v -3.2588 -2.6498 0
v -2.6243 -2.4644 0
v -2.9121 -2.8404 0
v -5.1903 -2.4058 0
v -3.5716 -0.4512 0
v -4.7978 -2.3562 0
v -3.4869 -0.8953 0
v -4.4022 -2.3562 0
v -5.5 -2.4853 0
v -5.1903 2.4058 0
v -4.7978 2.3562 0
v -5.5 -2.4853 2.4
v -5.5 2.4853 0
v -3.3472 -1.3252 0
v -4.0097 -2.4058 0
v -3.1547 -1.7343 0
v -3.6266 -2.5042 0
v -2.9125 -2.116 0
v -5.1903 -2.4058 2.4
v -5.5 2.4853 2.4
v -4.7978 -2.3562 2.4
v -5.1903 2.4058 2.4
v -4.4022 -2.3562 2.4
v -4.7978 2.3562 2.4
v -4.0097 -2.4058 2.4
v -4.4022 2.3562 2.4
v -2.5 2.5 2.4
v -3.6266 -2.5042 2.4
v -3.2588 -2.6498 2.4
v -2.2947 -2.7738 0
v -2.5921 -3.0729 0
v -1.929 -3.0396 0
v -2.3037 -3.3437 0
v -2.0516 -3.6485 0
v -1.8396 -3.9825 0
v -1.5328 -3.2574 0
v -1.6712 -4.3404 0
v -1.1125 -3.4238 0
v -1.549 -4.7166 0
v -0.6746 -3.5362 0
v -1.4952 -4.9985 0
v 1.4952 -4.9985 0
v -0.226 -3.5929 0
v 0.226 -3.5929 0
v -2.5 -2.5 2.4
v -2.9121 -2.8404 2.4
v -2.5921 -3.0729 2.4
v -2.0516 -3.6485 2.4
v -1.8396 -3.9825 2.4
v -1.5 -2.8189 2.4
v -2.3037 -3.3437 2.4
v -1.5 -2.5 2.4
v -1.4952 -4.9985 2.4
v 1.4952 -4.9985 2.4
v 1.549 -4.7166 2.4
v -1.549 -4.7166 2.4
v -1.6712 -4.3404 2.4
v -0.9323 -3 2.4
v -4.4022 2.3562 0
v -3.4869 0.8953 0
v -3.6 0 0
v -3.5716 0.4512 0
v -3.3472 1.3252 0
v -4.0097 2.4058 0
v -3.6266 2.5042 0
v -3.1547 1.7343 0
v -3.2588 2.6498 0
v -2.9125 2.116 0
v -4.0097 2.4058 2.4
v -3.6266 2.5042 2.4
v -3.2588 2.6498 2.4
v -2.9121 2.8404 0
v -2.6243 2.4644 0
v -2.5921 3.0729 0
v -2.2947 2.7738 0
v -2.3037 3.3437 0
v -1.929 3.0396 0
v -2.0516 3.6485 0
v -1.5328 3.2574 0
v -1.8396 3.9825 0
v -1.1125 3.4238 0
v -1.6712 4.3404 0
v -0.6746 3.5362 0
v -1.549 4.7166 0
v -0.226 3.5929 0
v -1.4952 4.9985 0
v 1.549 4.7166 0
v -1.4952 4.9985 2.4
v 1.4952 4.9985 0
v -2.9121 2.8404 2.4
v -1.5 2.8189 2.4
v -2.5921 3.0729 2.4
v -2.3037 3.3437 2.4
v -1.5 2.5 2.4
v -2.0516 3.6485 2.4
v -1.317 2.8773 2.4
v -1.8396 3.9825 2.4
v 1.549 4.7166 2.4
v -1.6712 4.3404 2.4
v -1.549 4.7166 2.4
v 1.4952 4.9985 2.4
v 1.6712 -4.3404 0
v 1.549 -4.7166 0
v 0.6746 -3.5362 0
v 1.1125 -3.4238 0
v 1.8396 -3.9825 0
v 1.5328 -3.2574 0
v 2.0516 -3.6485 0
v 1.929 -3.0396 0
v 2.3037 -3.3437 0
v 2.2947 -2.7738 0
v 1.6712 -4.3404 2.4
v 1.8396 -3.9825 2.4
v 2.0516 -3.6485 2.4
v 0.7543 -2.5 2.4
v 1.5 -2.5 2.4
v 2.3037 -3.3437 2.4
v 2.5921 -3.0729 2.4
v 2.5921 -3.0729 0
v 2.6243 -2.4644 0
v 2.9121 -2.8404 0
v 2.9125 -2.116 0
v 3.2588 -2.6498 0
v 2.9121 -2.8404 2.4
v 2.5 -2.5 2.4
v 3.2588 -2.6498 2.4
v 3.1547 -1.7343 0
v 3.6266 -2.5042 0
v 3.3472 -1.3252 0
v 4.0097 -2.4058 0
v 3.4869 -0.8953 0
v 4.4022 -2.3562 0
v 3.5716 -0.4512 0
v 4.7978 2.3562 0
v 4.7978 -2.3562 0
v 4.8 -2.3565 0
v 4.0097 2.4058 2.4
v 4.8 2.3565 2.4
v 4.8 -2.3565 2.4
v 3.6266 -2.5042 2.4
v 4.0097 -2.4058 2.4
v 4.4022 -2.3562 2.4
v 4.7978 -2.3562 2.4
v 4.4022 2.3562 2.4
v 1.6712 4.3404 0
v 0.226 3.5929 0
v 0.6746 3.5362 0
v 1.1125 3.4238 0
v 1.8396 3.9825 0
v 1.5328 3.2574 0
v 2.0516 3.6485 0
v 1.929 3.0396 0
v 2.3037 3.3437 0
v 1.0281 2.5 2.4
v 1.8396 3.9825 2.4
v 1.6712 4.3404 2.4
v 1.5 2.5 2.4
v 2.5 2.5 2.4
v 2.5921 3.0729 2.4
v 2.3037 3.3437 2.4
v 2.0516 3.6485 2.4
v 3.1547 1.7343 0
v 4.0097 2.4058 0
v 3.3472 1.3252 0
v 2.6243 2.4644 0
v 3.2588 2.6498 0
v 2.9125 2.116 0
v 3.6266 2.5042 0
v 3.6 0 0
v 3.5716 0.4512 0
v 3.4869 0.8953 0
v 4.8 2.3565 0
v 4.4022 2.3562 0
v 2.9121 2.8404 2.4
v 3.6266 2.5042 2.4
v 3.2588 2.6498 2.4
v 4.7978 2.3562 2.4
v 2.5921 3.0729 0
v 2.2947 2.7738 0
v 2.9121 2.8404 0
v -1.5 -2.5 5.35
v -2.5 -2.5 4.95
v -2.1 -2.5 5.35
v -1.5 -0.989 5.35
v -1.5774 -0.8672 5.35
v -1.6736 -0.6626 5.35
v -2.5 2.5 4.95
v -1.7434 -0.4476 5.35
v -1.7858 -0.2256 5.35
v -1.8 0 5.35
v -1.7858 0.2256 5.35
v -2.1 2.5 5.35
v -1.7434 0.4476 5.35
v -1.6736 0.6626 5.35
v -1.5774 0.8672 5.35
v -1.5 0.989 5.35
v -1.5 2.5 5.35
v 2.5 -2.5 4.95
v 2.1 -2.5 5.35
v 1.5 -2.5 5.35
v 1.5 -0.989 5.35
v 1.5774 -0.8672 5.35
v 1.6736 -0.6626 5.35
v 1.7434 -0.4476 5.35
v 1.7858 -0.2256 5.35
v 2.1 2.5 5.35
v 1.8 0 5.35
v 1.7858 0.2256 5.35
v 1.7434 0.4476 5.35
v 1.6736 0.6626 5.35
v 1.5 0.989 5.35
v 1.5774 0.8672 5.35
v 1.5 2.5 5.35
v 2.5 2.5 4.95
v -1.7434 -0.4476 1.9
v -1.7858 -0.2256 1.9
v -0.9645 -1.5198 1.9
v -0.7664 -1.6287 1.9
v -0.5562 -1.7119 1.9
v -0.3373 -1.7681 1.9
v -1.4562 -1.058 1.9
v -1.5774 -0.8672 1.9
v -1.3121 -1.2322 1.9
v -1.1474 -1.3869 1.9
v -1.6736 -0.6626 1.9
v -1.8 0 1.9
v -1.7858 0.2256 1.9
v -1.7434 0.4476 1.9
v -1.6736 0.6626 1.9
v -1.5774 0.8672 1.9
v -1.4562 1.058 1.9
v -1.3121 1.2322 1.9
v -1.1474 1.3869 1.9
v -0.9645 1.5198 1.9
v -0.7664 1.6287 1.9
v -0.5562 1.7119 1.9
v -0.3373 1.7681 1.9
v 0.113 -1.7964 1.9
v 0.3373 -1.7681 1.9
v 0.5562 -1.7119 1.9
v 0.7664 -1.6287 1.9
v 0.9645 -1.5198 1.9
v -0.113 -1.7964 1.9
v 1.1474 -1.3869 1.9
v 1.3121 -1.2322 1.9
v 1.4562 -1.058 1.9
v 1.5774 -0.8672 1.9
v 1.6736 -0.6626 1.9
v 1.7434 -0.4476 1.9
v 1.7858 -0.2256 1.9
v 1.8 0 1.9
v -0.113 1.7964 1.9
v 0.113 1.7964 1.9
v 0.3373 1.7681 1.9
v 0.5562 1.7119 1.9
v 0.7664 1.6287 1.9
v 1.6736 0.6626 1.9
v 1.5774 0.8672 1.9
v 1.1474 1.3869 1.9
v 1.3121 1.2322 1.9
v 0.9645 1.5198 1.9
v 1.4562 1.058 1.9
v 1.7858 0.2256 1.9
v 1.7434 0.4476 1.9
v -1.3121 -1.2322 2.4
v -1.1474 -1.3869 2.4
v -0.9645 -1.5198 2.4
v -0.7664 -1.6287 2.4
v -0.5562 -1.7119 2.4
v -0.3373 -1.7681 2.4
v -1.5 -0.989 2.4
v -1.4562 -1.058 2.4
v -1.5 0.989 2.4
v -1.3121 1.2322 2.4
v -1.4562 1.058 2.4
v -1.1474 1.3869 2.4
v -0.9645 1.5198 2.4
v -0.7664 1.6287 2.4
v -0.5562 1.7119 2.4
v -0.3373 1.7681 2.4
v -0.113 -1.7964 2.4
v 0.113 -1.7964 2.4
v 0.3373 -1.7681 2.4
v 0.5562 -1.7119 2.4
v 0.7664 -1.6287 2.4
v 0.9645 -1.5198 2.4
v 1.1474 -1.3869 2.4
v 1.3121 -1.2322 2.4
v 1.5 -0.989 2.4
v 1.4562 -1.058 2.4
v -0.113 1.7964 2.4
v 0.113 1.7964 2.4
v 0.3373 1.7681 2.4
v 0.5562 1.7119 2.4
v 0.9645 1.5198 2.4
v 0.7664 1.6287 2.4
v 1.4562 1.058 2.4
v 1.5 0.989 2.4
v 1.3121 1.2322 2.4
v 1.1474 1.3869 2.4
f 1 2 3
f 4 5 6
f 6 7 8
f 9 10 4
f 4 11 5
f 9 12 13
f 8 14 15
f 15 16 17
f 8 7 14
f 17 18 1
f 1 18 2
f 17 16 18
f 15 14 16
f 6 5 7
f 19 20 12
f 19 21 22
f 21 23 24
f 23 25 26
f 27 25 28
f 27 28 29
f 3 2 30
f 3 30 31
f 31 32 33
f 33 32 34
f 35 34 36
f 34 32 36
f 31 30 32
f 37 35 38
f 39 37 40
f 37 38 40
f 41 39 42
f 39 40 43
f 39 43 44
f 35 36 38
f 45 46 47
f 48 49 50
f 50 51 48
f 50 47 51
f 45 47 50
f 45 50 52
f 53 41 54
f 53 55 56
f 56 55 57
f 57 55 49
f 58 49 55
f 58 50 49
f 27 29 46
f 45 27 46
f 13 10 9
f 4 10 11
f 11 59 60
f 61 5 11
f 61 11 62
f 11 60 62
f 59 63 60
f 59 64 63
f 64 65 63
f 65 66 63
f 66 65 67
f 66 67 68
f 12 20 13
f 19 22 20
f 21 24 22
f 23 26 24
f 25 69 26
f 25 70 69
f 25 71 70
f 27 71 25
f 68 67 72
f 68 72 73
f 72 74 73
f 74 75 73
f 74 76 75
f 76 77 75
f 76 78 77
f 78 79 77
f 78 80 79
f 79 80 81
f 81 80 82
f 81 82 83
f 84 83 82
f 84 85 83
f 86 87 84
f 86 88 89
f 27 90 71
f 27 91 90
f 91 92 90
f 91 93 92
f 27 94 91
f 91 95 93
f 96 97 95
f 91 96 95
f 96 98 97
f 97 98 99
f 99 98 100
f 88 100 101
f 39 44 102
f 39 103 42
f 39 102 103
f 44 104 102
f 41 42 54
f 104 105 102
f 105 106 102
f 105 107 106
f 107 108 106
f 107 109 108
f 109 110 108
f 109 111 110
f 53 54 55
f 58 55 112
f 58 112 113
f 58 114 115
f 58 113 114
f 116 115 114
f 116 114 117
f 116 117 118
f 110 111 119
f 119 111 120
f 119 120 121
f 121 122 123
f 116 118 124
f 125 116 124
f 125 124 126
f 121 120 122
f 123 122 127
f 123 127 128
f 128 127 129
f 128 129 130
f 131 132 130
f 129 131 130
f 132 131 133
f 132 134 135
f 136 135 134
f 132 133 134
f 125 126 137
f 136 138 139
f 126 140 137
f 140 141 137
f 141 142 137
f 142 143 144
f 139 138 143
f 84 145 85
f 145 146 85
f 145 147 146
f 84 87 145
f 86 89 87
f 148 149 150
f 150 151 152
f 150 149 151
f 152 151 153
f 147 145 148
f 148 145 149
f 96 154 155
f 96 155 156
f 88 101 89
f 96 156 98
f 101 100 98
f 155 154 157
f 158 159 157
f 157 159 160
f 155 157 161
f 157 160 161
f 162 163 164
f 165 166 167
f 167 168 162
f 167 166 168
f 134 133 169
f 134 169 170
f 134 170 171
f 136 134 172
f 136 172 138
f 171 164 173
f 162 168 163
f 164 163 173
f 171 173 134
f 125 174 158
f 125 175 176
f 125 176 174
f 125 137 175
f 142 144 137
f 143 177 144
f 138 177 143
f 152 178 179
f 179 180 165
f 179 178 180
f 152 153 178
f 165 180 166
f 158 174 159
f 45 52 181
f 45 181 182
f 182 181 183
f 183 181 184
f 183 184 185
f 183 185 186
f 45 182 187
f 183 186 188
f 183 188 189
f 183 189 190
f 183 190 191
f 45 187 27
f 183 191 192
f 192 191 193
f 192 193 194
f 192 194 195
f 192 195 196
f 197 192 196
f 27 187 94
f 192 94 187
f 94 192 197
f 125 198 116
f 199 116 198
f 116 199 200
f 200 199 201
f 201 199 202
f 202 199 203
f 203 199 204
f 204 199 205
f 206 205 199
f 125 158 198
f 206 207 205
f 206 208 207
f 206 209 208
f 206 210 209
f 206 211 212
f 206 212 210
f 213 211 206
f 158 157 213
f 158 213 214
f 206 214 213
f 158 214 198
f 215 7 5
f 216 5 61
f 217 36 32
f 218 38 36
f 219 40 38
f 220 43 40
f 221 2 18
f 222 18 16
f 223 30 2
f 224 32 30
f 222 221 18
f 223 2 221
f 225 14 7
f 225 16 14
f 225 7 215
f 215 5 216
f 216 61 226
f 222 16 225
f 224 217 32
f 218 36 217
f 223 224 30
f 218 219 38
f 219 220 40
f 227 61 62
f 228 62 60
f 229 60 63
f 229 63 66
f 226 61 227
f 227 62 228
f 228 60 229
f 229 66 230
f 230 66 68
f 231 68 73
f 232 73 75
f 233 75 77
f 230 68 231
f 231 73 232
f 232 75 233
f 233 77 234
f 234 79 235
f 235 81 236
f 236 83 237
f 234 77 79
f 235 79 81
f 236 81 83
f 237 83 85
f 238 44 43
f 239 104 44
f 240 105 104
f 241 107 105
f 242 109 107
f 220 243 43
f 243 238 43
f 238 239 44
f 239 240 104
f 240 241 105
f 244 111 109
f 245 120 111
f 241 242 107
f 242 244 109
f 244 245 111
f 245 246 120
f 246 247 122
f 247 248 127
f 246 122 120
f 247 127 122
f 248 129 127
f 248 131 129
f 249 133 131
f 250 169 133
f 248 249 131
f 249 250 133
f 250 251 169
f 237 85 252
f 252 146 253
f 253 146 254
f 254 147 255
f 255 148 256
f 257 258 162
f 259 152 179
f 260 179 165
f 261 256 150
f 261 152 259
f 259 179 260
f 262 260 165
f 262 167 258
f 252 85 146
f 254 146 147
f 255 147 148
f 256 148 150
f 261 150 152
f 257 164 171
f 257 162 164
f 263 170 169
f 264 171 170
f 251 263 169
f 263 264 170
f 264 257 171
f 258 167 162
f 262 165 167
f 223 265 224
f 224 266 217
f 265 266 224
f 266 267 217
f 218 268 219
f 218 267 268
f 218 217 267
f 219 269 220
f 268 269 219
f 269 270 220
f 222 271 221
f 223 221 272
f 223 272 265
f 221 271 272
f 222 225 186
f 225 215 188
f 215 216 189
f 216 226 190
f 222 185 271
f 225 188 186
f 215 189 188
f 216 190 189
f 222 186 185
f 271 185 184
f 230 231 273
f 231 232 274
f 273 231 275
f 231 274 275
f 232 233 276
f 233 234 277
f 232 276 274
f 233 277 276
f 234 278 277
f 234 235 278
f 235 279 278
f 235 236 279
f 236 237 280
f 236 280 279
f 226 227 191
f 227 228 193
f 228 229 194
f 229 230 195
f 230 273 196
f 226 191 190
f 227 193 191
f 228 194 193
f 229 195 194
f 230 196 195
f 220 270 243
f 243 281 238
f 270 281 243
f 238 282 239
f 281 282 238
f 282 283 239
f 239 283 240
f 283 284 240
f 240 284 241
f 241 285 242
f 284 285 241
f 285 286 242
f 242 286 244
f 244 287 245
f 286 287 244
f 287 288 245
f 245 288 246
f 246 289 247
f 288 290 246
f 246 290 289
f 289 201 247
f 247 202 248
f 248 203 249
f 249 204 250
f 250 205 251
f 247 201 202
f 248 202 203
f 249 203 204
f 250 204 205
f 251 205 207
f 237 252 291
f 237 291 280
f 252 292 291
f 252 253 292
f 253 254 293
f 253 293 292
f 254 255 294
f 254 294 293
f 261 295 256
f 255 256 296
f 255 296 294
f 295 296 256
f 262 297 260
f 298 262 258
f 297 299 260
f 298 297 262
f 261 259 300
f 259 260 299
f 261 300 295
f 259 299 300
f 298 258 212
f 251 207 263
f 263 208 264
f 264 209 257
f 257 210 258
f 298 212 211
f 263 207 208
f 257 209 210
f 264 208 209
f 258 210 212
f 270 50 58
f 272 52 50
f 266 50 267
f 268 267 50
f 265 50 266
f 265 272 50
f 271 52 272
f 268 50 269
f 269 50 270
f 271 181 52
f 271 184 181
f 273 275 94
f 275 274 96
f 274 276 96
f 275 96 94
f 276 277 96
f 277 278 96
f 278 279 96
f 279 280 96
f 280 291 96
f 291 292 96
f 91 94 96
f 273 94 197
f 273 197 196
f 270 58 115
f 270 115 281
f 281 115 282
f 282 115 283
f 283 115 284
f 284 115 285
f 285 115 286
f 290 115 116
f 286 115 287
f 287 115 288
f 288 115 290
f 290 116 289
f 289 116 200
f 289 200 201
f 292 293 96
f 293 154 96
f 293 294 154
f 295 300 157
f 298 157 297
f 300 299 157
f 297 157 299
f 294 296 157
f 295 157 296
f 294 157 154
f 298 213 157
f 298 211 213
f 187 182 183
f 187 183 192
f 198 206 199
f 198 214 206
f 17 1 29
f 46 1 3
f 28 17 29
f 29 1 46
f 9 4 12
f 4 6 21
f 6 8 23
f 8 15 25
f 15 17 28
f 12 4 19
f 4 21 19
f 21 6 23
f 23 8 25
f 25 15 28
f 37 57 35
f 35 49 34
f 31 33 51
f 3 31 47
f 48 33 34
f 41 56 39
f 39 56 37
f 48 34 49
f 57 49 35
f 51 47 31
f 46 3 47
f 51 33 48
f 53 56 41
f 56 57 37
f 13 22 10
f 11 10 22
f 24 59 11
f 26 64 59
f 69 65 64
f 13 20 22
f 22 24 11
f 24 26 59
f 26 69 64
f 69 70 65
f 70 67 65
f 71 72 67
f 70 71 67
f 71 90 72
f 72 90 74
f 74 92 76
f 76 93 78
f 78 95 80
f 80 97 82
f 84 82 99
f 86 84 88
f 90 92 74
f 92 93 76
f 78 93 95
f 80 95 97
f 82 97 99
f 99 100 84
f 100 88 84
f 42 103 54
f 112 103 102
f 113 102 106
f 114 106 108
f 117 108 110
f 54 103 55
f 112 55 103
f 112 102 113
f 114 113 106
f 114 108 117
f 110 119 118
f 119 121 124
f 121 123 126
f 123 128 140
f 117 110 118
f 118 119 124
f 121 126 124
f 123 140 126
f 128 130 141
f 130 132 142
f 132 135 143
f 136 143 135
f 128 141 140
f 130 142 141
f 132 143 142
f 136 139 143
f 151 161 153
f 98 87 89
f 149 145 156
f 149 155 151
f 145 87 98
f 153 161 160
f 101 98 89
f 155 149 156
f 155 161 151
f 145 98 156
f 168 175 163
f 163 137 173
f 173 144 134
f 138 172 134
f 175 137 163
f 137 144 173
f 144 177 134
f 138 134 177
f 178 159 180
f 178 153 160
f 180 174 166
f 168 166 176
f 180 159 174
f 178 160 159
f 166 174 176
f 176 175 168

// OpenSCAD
$fn = 50;

difference() {
	union() {
		translate(v = [0, 0, 0]) {
			rotate(a = [0, 0, 0]) {
				difference() {
					union() {
						translate(v = [0, 0, 0]) {
							rotate(a = [0, 0, 0]) {
								difference() {
									union() {
										translate(v = [-0.35, 0, 0]) {
											hull() {
												translate(v = [-4.4, 4.25, 0]) {
													cylinder(h = 2.4, r = 0.75);
												}
												translate(v = [4.4, 4.25, 0]) {
													cylinder(h = 2.4, r = 0.75);
												}
												translate(v = [-4.4, -4.25, 0]) {
													cylinder(h = 2.4, r = 0.75);
												}
												translate(v = [4.4, -4.25, 0]) {
													cylinder(h = 2.4, r = 0.75);
												}
											}
										}
										translate(v = [-2.5, -2.5, 2.35]) {
											cube(size = [5.0, 5.0, 3.0]);
										}
									}
									union() {
										translate(v = [0, 0, 0]) {
											rotate(a = [0, 180, 0]) {
												difference() {
													union() {
														translate(v = [0, 0, -20.0]) {
															cylinder(h = 20.0, r = 1.5);
														}
														translate(v = [0, 0, -1.9]) {
															cylinder(h = 1.9, r1 = 1.8, r2 = 3.6);
														}
														cylinder(h = 250, r = 3.6);
														translate(v = [0, 0, -20.0]) {
															cylinder(h = 20.0, r = 1.8);
														}
														translate(v = [0, 0, -20.0]) {
															cylinder(h = 20.0, r = 1.5);
														}
													}
													union();
												}
											}
										}
										translate(v = [-1.5, -3.0, 2.4]) {
											cube(size = [3.0, 6.0, 3.0500000000000003]);
										}
										translate(v = [0, 2.6, 0]) {
											rotate(a = [90, 0, 0]) {
												linear_extrude(height = 5.2) {
													polygon(points = [[-2.7, 4.75], [-1.9, 5.55], [-2.7, 5.55]]);
												}
											}
										}
										translate(v = [0, 2.6, 0]) {
											rotate(a = [90, 0, 0]) {
												linear_extrude(height = 5.2) {
													polygon(points = [[2.7, 4.75], [1.9, 5.55], [2.7, 5.55]]);
												}
											}
										}
										translate(v = [-4.6, -5.5, -0.1]) {
											cylinder(h = 2.6, r = 3.15);
										}
										translate(v = [-4.6, 5.5, -0.1]) {
											cylinder(h = 2.6, r = 3.15);
										}
										translate(v = [4.6, -5.5, -0.1]) {
											cylinder(h = 2.6, r = 3.15);
										}
										translate(v = [4.6, 5.5, -0.1]) {
											cylinder(h = 2.6, r = 3.15);
										}
									}
								}
							}
						}
					}
					union();
				}
			}
		}
	}
	union();
}
